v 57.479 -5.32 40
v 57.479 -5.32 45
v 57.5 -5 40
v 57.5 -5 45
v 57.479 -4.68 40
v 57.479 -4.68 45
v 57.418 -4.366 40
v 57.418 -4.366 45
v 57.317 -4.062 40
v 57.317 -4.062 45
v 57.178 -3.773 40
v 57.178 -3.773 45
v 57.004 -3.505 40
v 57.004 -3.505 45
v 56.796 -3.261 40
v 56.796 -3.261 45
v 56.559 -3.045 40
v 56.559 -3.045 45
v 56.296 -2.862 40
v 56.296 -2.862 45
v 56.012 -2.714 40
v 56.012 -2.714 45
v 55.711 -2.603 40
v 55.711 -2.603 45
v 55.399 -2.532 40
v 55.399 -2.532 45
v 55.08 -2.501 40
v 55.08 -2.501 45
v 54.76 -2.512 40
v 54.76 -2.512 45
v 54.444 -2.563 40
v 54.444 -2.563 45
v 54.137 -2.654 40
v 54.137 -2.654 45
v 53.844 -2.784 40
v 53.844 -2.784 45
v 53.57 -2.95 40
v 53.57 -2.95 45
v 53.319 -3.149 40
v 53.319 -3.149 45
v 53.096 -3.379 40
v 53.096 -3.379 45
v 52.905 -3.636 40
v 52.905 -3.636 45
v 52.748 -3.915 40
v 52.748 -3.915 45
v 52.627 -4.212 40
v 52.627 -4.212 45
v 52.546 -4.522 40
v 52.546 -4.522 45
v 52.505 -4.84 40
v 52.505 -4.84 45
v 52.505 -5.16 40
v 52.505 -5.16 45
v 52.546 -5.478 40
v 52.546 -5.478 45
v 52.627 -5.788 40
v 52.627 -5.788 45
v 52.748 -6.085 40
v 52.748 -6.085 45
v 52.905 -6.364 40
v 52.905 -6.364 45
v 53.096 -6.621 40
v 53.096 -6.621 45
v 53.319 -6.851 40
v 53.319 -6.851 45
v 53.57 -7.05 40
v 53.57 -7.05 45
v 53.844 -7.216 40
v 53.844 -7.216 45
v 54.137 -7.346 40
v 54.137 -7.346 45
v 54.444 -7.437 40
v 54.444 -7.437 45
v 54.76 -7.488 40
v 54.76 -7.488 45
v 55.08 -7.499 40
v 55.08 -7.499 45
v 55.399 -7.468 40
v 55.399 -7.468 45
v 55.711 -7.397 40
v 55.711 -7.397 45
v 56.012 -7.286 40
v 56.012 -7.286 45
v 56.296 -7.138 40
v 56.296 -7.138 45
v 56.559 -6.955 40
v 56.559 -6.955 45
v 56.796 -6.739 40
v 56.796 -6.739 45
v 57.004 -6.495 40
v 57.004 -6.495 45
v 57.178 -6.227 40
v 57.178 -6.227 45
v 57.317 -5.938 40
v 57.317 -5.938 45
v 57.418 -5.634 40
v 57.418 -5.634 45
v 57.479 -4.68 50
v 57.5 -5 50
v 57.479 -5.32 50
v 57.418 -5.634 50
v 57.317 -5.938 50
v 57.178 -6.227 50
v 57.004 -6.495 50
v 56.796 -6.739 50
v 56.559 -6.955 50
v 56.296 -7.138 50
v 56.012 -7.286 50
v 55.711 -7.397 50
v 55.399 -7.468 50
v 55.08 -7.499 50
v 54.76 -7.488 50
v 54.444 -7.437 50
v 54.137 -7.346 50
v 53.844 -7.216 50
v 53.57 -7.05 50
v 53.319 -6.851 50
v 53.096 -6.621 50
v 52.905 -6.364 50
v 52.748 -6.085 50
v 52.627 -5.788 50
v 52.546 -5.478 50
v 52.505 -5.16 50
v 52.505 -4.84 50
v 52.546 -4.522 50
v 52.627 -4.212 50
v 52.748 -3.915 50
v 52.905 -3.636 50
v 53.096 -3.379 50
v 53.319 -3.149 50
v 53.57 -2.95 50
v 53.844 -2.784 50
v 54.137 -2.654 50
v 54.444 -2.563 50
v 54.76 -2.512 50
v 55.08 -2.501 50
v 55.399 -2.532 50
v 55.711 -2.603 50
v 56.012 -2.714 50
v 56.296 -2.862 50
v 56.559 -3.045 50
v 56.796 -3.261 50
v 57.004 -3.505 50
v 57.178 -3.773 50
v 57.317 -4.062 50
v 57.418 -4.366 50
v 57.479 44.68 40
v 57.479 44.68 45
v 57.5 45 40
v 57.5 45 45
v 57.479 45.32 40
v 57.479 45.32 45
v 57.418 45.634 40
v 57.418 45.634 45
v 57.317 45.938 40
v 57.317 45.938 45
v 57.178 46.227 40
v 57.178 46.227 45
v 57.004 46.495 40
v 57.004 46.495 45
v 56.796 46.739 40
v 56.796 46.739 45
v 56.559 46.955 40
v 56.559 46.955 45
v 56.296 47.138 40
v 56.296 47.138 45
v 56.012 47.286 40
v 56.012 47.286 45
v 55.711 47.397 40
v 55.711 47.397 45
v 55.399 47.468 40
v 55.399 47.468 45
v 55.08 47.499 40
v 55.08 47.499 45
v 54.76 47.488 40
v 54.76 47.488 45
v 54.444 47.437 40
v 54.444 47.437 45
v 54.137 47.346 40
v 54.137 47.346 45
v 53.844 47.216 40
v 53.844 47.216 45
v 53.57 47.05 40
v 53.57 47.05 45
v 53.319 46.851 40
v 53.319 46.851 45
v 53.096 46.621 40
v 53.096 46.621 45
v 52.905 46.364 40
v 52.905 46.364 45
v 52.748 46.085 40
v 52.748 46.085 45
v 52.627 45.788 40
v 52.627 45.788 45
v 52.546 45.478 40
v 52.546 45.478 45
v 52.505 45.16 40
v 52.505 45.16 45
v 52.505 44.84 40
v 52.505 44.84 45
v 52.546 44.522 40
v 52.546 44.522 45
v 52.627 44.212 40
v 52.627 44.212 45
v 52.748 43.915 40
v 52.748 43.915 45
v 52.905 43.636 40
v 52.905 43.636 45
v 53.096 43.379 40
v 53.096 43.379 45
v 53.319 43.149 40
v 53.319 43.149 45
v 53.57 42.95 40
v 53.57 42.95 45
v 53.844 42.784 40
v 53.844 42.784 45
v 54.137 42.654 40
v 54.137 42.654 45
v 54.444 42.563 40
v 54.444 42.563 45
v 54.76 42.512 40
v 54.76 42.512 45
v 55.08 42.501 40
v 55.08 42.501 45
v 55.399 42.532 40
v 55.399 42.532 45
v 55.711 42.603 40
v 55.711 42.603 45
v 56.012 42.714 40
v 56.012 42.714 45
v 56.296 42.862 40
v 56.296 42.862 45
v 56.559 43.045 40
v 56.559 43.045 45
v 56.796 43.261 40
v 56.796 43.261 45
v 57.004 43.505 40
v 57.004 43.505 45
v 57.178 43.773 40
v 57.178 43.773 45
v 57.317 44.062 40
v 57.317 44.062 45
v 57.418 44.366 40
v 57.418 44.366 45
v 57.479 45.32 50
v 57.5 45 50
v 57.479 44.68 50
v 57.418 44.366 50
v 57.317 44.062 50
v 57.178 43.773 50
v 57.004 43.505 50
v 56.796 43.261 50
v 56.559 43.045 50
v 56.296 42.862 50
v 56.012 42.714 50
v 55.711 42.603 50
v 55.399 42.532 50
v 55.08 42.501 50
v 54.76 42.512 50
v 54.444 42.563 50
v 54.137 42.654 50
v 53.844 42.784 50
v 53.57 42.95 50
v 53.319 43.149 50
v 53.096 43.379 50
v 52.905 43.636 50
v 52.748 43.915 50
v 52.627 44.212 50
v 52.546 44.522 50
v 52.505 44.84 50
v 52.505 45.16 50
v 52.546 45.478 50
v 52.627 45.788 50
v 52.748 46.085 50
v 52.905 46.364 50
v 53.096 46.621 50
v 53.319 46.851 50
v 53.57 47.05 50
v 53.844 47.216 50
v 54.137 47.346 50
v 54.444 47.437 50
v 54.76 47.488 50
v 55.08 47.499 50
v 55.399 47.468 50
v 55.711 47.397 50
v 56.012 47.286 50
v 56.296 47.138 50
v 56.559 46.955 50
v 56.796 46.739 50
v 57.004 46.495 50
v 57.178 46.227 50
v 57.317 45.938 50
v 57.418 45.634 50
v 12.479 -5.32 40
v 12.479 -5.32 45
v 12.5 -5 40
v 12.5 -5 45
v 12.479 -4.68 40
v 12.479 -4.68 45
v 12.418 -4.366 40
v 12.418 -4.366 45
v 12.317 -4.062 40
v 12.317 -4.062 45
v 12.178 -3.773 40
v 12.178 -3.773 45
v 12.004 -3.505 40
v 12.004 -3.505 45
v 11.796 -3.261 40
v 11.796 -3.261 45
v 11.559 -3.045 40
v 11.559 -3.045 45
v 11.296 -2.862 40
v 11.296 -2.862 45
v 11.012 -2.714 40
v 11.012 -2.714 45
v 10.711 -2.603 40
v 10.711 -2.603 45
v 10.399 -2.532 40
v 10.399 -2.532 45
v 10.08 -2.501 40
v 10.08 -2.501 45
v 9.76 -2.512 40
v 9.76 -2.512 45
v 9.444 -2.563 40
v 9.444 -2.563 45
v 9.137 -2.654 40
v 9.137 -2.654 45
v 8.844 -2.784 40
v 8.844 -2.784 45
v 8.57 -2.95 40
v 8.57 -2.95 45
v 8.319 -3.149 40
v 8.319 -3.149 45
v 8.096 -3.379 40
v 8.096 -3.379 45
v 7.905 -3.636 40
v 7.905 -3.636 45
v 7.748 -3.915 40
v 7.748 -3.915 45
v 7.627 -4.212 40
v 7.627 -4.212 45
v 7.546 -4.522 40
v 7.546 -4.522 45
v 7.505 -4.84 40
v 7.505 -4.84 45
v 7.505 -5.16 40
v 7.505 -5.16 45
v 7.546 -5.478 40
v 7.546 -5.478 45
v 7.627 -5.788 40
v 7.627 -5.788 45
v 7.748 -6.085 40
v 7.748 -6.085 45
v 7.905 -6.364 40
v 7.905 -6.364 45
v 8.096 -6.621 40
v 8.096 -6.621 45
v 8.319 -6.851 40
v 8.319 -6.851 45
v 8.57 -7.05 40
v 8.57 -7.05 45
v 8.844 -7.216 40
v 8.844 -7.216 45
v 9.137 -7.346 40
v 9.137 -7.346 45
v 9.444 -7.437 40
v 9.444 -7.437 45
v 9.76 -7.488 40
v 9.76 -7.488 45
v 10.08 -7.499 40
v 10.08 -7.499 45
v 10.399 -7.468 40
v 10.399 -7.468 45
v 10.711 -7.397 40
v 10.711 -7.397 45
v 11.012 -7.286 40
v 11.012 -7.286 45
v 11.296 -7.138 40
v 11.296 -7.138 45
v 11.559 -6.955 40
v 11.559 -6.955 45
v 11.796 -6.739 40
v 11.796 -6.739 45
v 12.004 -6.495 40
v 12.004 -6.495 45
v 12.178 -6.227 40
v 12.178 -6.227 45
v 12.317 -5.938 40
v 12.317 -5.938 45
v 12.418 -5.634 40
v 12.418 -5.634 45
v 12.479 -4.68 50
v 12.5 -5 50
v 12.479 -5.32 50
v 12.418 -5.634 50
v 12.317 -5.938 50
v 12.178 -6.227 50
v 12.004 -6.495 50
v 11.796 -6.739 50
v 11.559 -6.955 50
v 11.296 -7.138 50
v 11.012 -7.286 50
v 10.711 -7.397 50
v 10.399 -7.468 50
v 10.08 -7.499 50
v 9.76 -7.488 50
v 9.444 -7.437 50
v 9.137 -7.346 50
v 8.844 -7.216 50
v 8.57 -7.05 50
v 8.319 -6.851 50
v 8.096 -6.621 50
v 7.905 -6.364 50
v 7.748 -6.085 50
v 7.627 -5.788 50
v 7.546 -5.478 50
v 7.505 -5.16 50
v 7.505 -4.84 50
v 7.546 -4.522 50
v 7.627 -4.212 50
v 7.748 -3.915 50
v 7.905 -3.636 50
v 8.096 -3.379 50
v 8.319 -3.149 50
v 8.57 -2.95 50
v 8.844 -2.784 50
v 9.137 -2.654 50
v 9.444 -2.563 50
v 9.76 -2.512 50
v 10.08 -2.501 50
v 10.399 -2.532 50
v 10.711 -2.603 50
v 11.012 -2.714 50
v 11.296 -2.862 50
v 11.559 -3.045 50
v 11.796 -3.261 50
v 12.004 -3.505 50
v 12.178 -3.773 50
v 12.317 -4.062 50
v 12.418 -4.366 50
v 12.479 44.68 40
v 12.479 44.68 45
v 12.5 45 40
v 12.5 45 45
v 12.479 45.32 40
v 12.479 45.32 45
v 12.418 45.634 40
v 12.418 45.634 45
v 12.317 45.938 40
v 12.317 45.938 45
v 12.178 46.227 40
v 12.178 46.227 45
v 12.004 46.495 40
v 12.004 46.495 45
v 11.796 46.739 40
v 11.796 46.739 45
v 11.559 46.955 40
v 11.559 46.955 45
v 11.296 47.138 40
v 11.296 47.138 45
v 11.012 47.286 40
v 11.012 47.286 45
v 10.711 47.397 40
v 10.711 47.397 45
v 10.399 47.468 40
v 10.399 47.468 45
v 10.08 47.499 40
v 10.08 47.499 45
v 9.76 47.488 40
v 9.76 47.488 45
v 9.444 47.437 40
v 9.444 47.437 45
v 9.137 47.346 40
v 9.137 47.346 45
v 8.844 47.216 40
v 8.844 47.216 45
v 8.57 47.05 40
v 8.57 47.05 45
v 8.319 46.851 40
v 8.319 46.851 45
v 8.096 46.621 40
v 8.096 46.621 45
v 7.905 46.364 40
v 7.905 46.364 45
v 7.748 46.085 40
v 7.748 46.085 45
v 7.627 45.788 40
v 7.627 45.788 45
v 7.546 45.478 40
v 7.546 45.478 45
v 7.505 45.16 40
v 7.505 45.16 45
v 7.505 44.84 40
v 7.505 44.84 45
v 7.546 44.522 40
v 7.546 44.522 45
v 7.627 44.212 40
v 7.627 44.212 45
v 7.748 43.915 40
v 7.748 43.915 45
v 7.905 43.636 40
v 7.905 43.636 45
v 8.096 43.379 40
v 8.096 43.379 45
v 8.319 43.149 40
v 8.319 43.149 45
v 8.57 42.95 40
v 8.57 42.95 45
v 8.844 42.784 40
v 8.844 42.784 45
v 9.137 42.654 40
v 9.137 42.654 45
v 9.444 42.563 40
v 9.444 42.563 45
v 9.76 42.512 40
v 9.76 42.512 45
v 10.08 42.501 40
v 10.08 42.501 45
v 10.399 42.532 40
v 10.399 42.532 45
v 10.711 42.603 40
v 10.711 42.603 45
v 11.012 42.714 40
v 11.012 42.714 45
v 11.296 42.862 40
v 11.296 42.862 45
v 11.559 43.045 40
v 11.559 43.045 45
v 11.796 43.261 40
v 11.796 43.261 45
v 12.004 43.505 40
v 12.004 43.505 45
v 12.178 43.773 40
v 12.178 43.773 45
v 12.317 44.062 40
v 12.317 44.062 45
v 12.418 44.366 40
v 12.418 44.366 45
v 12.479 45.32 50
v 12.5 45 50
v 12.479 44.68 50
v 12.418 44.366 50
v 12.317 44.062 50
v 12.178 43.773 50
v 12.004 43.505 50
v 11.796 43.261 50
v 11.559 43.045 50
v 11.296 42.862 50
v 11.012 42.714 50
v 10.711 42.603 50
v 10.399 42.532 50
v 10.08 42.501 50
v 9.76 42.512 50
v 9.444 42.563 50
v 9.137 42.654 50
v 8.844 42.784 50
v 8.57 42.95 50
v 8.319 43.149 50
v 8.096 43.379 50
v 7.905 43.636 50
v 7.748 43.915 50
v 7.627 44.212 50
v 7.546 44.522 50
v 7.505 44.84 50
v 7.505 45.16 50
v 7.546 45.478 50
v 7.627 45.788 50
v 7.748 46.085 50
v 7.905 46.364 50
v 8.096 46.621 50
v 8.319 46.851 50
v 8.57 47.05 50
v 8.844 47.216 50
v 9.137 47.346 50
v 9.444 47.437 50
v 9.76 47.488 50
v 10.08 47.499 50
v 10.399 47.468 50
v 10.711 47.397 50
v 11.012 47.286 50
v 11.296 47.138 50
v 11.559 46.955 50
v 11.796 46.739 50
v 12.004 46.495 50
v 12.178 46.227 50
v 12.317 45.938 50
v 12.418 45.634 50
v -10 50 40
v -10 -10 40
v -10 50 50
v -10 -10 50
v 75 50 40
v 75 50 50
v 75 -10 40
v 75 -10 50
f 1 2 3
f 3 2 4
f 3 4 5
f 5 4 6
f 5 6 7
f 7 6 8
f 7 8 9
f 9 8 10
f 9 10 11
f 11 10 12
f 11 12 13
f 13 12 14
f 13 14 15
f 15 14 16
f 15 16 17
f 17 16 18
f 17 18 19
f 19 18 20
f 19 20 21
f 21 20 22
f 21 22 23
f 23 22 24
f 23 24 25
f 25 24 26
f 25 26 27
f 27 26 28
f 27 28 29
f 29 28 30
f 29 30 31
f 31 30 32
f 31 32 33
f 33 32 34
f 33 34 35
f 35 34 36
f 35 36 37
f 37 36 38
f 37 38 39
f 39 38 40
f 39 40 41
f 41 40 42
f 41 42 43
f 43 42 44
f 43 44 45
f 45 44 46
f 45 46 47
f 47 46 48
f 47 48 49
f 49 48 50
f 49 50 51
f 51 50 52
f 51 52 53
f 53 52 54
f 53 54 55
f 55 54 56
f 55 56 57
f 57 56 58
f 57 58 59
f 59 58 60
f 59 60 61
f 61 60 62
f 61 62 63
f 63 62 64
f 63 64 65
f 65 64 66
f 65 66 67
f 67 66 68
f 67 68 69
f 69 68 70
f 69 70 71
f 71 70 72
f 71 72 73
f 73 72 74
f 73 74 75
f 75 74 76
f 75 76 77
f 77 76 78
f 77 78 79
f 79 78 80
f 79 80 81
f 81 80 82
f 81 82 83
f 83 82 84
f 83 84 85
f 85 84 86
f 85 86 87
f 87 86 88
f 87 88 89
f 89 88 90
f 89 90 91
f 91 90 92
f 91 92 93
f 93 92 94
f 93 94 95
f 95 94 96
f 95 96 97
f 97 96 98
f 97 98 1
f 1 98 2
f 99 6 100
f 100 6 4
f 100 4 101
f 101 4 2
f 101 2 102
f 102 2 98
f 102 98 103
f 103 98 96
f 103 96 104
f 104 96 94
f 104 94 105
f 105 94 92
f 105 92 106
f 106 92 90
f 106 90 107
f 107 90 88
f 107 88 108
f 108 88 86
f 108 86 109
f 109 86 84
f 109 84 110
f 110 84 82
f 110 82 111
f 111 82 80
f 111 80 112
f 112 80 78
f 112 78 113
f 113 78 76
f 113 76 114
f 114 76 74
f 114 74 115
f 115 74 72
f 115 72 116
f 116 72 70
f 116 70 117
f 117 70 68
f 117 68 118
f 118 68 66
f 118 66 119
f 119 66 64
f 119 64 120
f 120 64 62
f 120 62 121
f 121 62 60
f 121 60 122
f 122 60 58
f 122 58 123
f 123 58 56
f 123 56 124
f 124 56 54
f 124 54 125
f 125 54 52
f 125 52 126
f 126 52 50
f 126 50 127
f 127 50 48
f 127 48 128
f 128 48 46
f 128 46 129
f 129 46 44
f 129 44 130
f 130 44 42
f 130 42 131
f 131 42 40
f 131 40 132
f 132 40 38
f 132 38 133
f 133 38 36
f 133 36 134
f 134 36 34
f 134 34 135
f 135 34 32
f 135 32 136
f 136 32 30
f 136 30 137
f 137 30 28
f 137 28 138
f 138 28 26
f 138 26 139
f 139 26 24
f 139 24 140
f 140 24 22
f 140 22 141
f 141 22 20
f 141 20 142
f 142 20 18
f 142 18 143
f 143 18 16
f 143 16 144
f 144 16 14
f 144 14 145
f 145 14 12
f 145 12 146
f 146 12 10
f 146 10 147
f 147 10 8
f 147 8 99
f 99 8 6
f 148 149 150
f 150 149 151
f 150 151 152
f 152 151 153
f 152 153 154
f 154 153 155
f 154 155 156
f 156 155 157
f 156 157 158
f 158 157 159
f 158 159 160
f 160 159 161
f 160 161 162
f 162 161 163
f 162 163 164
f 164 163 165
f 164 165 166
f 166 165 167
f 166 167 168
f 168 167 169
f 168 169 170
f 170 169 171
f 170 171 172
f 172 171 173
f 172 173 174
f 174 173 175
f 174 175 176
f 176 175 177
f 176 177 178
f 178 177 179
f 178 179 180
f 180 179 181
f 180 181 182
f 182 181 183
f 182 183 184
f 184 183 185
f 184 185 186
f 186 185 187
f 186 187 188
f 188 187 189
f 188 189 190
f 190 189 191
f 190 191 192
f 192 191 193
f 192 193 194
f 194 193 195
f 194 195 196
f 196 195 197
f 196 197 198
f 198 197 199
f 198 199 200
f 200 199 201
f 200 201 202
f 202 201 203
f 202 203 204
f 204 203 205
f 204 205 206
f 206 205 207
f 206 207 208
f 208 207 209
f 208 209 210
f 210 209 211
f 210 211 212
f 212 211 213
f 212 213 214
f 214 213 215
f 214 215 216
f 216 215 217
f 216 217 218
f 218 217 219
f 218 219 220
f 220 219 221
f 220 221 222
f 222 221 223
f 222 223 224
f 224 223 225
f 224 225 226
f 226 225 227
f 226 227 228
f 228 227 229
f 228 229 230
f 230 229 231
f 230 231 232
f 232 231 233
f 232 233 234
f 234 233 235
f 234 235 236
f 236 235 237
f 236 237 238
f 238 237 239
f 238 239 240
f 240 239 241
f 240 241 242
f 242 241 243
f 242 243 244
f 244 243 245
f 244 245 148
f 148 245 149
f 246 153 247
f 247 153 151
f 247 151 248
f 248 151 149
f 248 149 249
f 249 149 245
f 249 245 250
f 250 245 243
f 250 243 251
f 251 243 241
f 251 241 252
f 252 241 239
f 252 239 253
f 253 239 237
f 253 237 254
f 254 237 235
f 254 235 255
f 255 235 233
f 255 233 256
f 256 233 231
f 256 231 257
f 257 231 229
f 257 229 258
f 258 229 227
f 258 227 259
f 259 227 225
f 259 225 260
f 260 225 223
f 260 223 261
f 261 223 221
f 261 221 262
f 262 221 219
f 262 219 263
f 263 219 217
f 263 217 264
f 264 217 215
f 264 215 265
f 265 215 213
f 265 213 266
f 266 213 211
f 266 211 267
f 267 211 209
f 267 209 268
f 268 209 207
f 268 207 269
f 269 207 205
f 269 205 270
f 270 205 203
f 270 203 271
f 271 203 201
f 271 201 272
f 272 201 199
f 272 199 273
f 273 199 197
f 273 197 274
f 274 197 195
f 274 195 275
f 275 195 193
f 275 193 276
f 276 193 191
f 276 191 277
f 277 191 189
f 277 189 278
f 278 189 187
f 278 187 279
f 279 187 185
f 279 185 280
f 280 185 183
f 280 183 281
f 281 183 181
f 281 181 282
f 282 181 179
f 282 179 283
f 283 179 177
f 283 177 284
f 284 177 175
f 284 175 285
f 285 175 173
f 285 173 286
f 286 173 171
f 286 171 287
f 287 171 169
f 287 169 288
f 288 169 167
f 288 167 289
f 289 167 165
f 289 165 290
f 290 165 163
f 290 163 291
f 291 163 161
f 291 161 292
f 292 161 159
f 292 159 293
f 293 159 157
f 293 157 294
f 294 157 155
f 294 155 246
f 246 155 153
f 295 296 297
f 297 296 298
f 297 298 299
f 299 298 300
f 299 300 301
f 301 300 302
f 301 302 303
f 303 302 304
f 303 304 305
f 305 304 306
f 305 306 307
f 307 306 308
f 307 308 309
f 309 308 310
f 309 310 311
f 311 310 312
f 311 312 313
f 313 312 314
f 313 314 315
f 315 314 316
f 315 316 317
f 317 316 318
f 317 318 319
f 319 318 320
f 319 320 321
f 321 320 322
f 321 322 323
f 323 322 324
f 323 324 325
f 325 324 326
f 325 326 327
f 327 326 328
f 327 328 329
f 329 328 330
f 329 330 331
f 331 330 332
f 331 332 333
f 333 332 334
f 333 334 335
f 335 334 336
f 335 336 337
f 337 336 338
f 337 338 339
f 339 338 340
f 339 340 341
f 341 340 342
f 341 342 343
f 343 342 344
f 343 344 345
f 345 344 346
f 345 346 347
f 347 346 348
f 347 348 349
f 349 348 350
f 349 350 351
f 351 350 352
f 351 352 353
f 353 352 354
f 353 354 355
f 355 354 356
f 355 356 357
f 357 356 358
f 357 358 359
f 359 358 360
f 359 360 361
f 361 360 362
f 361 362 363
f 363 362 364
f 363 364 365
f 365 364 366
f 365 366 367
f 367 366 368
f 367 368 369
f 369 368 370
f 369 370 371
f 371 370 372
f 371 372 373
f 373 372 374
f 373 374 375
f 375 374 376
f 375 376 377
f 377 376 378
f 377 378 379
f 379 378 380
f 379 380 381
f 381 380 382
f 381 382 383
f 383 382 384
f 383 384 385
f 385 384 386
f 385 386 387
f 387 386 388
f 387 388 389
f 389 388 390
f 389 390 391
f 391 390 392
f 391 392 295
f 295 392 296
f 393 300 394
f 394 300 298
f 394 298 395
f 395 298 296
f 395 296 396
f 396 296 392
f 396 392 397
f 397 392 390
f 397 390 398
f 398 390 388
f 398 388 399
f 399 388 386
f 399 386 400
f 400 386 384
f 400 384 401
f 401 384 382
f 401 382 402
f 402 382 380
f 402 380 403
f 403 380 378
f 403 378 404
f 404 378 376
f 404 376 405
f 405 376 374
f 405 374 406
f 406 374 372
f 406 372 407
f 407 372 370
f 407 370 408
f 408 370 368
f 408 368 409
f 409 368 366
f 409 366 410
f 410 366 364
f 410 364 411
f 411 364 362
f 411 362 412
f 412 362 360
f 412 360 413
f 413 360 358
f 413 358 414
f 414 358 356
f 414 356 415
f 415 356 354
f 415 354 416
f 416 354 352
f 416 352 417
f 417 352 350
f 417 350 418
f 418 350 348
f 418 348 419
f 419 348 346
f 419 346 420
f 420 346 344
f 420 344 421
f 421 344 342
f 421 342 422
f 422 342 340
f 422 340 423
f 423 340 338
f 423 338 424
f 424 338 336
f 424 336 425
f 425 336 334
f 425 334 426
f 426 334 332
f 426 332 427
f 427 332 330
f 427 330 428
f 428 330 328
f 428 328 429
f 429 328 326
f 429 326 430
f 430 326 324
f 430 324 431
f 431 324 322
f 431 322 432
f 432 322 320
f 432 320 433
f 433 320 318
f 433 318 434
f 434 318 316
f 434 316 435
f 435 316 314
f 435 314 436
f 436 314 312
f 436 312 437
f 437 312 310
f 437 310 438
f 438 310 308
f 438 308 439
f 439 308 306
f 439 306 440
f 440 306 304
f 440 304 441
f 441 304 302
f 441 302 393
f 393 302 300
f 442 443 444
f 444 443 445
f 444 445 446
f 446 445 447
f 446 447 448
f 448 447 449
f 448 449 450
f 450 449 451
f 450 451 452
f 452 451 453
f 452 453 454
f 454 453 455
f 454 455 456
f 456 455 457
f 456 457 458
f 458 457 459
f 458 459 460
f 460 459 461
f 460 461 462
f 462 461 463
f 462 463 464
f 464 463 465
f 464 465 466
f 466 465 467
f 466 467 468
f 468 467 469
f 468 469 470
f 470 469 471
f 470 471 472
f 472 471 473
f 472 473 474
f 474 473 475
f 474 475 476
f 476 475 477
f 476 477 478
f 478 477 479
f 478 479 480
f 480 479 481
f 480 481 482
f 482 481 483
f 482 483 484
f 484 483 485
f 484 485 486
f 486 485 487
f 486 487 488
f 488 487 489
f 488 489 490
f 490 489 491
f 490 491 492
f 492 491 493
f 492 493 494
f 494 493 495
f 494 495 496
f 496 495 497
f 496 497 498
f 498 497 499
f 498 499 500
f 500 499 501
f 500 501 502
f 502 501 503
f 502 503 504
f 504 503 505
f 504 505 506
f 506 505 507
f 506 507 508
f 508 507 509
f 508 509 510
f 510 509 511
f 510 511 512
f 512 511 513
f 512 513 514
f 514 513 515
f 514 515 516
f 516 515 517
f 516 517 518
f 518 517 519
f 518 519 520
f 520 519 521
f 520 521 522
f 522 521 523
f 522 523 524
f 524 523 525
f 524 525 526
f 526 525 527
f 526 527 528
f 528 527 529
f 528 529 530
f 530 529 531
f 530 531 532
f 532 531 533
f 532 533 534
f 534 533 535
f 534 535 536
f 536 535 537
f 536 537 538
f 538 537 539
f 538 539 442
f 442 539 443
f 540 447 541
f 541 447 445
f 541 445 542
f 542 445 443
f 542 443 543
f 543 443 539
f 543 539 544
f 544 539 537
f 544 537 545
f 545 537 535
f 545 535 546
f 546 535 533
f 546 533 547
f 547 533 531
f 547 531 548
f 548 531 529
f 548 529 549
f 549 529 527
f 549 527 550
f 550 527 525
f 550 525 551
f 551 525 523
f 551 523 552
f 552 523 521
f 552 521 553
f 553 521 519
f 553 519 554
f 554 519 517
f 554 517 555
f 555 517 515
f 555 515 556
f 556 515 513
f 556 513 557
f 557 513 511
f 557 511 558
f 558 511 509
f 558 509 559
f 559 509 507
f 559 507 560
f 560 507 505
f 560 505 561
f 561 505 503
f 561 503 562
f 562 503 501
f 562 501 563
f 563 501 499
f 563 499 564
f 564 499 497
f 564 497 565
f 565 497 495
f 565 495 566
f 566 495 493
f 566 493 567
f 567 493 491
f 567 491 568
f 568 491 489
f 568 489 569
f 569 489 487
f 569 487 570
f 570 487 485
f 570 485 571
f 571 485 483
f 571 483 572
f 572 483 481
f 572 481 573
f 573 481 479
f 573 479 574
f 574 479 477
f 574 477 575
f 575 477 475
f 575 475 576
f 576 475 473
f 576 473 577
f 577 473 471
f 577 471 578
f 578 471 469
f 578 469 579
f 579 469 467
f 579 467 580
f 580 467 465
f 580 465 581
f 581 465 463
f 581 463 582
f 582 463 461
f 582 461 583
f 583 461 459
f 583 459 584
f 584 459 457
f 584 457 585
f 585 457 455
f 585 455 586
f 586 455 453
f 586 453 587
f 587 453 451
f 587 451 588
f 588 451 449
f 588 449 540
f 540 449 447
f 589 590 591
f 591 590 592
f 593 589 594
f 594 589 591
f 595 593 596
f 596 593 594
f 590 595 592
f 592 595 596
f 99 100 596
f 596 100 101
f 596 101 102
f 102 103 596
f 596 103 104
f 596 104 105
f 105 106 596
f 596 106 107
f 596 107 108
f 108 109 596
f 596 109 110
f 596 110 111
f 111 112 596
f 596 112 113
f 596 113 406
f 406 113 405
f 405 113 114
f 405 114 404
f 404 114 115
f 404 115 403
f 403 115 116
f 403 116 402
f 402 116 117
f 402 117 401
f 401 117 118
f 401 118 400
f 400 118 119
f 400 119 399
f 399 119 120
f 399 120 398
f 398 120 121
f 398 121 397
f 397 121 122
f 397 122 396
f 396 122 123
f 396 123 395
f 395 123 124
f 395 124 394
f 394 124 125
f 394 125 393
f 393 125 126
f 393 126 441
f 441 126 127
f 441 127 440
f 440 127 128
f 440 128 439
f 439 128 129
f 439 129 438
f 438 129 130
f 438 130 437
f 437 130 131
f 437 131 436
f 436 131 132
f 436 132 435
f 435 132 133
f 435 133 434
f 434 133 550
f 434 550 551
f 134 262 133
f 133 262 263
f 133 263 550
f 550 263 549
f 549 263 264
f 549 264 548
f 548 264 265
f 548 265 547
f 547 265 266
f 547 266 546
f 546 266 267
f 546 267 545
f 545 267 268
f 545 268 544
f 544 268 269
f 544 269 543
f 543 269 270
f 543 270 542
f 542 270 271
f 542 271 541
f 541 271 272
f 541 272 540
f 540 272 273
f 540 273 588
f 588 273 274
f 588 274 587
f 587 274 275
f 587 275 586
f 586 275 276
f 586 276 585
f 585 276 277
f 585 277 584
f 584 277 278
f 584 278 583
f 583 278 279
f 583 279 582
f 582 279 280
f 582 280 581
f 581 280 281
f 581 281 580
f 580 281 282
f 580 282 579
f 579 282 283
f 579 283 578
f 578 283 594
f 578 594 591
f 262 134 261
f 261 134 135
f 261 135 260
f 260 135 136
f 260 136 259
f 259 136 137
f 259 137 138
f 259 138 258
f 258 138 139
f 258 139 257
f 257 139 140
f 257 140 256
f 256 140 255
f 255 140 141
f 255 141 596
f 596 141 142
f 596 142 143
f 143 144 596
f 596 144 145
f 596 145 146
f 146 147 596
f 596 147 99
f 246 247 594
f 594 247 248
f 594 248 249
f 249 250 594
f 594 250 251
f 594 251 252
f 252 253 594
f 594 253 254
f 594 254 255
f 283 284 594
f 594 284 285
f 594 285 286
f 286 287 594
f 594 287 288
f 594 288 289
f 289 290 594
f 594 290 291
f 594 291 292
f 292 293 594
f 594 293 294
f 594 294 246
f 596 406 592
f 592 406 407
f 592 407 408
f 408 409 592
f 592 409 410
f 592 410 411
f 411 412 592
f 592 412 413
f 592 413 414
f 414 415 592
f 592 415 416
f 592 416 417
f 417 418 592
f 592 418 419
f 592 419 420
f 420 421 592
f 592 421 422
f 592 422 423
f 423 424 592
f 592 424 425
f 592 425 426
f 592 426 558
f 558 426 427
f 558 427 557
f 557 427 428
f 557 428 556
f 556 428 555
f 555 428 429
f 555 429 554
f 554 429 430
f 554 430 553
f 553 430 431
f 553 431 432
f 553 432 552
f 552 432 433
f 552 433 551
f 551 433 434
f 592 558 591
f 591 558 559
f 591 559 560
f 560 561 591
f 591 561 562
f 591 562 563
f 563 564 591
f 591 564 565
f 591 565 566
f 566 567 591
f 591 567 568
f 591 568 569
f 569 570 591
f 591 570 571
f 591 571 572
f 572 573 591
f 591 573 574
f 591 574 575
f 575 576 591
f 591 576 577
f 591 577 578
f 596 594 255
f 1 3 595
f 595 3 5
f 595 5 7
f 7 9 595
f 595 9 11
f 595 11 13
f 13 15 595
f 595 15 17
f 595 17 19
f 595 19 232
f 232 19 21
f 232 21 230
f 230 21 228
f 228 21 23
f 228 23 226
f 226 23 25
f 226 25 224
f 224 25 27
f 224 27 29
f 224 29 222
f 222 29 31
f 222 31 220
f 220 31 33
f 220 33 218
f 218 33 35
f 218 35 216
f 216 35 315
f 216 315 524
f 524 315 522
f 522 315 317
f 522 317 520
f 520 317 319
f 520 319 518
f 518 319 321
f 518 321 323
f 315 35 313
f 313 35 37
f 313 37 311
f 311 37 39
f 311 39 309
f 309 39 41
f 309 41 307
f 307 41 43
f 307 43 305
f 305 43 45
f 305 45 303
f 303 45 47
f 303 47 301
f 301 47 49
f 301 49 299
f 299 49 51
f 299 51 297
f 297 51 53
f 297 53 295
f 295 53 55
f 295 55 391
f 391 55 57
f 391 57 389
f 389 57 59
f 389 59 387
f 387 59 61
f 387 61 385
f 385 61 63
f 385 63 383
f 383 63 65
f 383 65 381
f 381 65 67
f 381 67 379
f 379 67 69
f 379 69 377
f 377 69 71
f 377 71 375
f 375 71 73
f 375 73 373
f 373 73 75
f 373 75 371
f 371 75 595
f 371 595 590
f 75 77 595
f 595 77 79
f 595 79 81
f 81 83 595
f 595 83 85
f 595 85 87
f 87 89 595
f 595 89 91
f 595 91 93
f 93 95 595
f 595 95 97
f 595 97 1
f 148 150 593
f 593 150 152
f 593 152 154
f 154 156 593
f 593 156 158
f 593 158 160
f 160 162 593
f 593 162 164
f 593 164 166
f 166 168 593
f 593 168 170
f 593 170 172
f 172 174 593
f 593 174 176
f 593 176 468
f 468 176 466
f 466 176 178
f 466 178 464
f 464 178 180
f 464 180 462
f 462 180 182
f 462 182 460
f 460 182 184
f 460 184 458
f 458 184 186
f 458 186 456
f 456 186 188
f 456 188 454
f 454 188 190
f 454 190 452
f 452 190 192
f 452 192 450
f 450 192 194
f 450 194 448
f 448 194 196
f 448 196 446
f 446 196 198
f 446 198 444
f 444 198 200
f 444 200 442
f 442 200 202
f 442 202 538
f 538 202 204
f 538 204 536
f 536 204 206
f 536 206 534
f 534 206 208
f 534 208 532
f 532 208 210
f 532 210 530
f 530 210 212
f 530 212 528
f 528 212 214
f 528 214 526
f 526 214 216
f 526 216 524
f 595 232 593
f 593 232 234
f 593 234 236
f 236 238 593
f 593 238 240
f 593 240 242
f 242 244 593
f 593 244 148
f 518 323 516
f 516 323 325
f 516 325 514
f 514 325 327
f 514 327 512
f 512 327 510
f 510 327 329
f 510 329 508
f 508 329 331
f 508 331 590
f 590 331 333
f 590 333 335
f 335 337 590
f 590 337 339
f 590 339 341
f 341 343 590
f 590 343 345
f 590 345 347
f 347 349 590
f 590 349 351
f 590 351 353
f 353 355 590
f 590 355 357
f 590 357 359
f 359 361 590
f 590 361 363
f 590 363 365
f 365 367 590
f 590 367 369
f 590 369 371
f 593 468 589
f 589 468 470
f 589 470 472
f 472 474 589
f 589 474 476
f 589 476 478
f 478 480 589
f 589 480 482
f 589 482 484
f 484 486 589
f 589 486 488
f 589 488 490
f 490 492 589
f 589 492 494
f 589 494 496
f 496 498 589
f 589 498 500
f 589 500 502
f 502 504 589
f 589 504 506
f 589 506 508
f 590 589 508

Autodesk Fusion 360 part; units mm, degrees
ref_plane "WorkPlane1" through (0, 0, 40) normal (0, 0, 1) x (1, 0, 0)
sketch "Sketch1" plane through (0, 0, 40) normal (0, 0, 1) x (1, 0, 0)
  line L0 (-10, 50) -> (75, 50)
  line L1 (75, 50) -> (75, -10)
  line L2 (75, -10) -> (-10, -10)
  line L3 (-10, -10) -> (-10, 50)
extrude "Extrude1" add sketch "Sketch1" along normal blind 10
sketch "Sketch2" plane through (0, 0, 50) normal (0, 0, 1) x (-1, 0, 0)
  line L0 (10, 10) -> (-75, 10)
  line L1 (-75, 10) -> (-75, -50)
  line L2 (-75, -50) -> (10, -50)
  line L3 (10, -50) -> (10, 10)
  circle A0 centre (-10, 5) radius 2.5
  circle A1 centre (-55, 5) radius 2.5
  circle A2 centre (-55, -45) radius 2.5
  circle A3 centre (-10, -45) radius 2.5
  dimension "d11" = 5
  dimension "d12" = 5
  dimension "d13" = 5
  dimension "d14" = 5
extrude "Extrude2" cut sketch "Sketch2" against normal blind 10 contours A0 | A1 | A2 | A3
